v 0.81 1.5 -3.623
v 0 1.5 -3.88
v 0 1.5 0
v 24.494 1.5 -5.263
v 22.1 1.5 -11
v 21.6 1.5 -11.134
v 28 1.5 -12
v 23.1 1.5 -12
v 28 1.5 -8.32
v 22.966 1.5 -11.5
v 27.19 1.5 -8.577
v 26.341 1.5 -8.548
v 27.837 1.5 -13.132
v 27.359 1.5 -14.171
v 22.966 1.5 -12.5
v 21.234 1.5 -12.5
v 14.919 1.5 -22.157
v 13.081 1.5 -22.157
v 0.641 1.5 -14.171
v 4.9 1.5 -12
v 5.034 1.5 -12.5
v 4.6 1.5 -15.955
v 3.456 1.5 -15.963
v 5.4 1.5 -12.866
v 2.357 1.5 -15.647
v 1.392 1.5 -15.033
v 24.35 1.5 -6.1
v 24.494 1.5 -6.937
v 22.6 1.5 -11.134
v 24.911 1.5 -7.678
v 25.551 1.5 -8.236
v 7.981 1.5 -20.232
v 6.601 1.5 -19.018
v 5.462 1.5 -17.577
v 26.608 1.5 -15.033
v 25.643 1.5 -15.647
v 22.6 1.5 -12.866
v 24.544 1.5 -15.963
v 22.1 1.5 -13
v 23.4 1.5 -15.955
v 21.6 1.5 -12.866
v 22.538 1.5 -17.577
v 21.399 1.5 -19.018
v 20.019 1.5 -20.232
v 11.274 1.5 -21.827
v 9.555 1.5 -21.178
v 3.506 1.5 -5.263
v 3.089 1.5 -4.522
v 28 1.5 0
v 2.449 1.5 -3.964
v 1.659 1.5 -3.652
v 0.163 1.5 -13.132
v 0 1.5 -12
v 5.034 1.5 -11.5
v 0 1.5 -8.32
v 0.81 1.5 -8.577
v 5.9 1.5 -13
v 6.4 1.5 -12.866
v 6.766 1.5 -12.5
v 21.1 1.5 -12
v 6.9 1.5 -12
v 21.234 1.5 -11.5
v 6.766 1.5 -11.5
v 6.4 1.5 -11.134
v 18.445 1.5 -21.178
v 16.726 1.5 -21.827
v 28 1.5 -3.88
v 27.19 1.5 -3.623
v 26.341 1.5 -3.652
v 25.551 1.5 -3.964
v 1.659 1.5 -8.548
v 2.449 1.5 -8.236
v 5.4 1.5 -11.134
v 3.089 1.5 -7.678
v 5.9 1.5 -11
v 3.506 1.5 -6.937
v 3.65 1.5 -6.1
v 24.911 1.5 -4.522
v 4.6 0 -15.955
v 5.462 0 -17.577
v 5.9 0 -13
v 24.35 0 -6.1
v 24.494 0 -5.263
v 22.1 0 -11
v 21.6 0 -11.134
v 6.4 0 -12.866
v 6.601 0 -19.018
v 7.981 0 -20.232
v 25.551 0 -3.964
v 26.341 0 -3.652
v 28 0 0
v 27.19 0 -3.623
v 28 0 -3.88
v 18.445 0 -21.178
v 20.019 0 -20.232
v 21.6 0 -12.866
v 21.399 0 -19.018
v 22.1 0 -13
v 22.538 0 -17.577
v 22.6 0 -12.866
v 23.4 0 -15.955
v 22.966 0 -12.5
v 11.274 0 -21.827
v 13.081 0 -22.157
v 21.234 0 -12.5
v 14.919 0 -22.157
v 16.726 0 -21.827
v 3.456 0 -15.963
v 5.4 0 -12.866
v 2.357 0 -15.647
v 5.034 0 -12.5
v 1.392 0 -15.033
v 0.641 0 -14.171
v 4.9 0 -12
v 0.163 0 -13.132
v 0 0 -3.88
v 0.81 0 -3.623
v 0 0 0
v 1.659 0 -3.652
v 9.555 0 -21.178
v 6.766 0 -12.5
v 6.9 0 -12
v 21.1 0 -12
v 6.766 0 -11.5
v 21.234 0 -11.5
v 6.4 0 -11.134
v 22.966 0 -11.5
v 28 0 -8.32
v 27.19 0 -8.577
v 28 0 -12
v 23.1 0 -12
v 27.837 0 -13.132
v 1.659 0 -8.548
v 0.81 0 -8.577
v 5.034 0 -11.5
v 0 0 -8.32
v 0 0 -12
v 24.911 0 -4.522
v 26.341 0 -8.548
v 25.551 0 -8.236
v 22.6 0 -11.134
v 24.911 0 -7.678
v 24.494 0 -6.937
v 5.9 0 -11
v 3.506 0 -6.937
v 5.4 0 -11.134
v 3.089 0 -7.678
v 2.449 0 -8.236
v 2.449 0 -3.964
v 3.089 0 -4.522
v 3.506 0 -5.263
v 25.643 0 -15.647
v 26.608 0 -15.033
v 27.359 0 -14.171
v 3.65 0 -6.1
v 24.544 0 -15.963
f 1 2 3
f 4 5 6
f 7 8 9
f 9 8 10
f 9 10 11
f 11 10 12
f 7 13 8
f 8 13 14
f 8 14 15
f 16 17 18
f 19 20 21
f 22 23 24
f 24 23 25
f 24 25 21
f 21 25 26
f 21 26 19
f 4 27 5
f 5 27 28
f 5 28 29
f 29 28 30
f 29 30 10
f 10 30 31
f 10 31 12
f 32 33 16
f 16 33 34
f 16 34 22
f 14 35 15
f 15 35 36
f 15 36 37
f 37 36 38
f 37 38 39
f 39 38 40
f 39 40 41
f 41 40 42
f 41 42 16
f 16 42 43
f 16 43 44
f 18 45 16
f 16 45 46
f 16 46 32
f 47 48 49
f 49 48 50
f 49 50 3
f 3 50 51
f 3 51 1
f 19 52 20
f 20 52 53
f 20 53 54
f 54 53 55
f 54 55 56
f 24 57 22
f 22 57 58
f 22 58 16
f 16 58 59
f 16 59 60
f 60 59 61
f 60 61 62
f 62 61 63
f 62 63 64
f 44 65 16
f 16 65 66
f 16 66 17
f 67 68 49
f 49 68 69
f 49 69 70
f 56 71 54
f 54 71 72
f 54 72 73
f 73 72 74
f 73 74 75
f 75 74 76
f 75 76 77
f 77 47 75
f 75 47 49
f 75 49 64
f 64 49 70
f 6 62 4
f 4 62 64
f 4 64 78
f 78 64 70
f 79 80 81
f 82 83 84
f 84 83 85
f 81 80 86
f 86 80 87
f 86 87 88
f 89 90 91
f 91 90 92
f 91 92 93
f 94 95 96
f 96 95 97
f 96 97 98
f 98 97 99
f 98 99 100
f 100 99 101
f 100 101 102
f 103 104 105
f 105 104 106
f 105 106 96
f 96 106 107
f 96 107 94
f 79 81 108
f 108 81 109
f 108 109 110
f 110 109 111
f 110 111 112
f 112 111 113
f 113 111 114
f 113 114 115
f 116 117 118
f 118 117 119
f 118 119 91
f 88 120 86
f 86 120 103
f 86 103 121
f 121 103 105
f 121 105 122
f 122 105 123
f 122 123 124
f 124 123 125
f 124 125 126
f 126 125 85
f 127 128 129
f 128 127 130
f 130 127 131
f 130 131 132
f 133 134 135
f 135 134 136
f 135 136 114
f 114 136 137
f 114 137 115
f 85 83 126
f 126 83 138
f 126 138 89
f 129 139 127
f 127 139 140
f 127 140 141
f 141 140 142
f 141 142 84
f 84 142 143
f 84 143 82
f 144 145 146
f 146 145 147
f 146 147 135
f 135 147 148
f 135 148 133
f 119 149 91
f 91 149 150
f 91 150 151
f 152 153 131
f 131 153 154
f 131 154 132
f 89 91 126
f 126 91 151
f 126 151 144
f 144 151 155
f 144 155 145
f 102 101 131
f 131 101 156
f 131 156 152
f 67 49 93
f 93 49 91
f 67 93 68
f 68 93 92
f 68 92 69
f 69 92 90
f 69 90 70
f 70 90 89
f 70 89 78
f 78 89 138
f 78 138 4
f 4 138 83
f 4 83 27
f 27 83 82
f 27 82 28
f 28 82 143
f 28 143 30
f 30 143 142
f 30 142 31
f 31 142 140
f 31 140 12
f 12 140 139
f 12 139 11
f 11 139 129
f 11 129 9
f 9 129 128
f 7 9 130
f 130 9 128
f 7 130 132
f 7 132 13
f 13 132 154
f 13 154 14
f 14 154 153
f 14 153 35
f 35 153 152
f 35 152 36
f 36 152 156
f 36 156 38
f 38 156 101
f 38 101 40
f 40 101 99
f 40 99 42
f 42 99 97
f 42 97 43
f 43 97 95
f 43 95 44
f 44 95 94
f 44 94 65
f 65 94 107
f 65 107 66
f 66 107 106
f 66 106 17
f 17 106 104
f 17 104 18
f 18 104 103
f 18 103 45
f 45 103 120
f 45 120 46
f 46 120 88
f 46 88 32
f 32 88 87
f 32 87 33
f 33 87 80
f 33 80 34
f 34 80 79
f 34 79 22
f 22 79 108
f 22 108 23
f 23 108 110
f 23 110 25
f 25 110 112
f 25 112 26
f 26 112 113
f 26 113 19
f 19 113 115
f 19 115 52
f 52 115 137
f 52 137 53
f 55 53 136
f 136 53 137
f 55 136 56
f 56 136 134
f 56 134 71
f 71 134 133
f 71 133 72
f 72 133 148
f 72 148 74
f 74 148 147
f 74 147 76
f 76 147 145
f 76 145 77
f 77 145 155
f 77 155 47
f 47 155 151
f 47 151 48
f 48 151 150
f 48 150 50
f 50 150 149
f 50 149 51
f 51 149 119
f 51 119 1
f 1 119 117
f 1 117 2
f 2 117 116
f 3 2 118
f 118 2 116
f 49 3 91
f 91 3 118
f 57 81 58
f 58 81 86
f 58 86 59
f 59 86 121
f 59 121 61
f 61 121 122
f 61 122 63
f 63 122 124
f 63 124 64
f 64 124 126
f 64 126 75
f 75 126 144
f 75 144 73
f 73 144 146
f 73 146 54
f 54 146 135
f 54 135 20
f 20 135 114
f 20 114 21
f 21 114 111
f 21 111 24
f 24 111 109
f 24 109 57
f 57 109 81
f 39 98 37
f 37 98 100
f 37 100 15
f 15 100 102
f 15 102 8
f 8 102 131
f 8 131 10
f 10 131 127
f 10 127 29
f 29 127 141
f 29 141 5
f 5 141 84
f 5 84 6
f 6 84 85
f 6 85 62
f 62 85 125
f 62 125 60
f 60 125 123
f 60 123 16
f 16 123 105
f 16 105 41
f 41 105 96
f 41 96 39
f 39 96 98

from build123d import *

# Parameters (mm, degrees)
SKETCH1_R           = 1
BOSS_EXTRUDE1_DEPTH = 1.5


with BuildPart() as part:
    # Sketch1 → Boss-Extrude1 (new body)
    with BuildSketch(Plane(origin=(0, 0, 0), x_dir=(1, 0, 0), z_dir=(0, 1, 0))):
        with BuildLine():
            Line((0, 0), (28, 0))
            Line((28, 0), (28, 3.880202712))
            ThreePointArc((28, 3.880202712), (24.35, 6.1), (28, 8.319797288))
            Line((28, 8.319797288), (28, 12))
            ThreePointArc((28, 12), (26.607680962, 15.033150178), (23.4, 15.954743987))
            ThreePointArc((23.4, 15.954743987), (14, 22.198039027), (4.6, 15.954743987))
            ThreePointArc((4.6, 15.954743987), (1.392319038, 15.033150178), (0, 12))
            Line((0, 12), (0, 8.319797288))
            ThreePointArc((0, 8.319797288), (3.65, 6.1), (0, 3.880202712))
            Line((0, 3.880202712), (0, 0))
        make_face()
        with Locations((5.9, 12)):
            Circle(SKETCH1_R, mode=Mode.SUBTRACT)
        with Locations((22.1, 12)):
            Circle(SKETCH1_R, mode=Mode.SUBTRACT)
    extrude(amount=BOSS_EXTRUDE1_DEPTH)


solid = part.part
